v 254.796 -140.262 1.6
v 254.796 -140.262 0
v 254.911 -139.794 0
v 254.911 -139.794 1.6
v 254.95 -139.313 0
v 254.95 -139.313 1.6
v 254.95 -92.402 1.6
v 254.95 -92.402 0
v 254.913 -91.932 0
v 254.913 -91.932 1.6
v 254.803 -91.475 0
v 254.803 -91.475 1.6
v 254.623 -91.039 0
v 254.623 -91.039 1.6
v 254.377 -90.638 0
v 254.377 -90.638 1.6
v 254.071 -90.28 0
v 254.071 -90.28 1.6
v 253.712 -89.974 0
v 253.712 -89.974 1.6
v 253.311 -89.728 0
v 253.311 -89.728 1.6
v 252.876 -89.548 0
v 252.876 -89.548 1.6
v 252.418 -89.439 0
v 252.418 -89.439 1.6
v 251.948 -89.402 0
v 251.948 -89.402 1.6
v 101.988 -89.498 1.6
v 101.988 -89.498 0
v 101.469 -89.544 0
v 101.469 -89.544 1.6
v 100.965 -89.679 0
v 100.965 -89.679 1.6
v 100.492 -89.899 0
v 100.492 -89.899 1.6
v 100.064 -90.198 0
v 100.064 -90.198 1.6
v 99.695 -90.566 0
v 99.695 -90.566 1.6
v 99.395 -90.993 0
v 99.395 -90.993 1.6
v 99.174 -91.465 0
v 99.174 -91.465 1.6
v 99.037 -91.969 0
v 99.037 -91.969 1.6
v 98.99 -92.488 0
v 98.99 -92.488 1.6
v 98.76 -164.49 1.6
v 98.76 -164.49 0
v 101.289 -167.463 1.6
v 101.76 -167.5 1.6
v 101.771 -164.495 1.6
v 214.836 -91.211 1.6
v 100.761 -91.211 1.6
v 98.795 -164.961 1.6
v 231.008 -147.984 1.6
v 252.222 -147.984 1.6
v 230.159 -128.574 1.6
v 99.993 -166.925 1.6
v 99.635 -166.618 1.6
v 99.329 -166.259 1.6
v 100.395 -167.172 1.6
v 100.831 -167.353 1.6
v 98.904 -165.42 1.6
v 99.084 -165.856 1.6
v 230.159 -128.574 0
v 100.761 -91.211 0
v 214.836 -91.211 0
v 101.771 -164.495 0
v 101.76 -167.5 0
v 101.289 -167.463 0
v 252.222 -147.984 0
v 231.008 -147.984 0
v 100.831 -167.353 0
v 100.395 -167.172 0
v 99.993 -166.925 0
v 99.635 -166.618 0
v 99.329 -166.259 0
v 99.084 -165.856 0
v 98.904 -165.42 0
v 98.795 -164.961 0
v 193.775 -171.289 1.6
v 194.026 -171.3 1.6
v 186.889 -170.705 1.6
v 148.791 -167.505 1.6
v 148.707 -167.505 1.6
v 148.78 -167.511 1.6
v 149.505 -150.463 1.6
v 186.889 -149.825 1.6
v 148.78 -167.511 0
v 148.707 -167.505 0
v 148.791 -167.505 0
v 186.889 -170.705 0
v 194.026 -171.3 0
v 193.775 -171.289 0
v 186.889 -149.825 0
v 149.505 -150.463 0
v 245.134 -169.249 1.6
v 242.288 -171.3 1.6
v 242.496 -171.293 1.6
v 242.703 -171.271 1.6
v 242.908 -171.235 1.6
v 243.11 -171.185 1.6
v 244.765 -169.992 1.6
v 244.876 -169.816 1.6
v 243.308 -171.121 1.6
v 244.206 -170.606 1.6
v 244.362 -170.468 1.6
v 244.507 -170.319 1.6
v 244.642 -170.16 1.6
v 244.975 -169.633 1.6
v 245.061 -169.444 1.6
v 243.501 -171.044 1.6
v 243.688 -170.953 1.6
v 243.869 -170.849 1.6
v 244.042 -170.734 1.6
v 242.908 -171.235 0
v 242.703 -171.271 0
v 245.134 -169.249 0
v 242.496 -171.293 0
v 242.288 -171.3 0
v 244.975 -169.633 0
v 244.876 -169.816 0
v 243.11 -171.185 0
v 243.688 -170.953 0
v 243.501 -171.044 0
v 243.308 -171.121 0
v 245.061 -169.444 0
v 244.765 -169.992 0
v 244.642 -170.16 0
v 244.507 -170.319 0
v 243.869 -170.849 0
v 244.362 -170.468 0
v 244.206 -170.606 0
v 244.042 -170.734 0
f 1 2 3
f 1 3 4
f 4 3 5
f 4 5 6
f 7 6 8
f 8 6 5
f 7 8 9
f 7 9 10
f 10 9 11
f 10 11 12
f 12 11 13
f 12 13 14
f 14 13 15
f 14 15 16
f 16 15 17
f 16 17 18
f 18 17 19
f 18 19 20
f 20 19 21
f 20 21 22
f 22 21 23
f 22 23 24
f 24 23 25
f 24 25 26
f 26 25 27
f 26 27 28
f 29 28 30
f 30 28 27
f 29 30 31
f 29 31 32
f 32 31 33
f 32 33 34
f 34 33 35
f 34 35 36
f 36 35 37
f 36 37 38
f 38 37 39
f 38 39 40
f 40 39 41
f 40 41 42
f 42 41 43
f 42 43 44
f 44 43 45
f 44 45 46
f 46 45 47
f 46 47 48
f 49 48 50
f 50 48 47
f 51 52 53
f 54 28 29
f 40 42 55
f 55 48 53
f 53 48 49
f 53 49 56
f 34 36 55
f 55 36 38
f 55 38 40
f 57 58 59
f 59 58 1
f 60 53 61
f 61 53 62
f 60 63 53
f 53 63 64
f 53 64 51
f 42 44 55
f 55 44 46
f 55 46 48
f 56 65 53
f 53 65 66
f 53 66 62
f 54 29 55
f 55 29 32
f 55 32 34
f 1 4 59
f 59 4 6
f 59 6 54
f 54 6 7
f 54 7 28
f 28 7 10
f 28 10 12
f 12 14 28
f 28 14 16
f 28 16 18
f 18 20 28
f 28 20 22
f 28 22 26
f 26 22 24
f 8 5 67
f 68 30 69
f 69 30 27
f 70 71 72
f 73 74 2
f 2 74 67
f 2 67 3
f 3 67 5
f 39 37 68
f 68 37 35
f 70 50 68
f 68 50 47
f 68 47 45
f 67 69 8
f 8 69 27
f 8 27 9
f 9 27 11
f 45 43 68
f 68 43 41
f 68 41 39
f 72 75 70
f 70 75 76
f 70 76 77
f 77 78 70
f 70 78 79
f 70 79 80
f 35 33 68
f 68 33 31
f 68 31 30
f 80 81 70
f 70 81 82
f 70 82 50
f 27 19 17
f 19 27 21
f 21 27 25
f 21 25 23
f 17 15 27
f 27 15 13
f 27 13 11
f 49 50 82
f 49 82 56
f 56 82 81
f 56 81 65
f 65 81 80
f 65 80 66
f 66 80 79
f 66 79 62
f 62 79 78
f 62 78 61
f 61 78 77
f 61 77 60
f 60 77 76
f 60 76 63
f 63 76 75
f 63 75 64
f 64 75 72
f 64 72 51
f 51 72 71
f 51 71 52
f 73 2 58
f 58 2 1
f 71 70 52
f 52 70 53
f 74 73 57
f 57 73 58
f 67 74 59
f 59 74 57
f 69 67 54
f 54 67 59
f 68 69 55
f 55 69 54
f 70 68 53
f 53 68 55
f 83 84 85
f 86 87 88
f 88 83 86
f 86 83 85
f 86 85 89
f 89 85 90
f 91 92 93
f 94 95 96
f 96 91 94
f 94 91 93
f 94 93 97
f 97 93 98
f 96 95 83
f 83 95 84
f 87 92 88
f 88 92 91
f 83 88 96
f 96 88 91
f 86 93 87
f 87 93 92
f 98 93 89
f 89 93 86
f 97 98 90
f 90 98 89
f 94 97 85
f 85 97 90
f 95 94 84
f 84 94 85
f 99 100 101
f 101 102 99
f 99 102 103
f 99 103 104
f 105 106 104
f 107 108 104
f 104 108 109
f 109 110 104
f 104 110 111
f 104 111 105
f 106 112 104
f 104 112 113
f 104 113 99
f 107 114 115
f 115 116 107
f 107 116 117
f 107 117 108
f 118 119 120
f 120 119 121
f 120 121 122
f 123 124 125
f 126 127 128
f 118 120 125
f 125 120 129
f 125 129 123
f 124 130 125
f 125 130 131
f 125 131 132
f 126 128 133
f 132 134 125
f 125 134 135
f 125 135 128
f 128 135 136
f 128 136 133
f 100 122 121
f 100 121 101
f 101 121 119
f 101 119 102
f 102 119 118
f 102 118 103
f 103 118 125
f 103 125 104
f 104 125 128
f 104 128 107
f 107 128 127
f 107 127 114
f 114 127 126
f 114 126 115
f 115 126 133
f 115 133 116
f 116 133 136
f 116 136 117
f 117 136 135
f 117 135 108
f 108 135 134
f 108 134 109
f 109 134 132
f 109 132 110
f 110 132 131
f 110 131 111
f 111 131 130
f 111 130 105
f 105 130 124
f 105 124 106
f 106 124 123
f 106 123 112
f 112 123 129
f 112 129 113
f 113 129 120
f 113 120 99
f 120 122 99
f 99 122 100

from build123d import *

# Parameters (mm, degrees)
BOSS_EXTRUDE1_DEPTH = 1.6
CUT_EXTRUDE1_DEPTH  = 308.157536942


with BuildPart() as part:
    # Model → Boss-Extrude1 (new body)
    with BuildSketch(Plane.XY):
        with BuildLine():
            Line((251.9480764, -89.4019249), (101.9884826, -89.4980837))
            ThreePointArc((101.9884826, -89.4980837), (99.871807019, -90.374045054), (98.9904216, -92.4884678))
            Line((98.9904216, -92.4884678), (98.7596462, -164.4903847))
            ThreePointArc((98.7596462, -164.4903847), (99.634913648, -166.617918097), (101.7596308, -167.5))
            Line((101.7596308, -167.5), (148.5292403, -167.5))
            ThreePointArc((148.5292403, -167.5), (148.654889304, -167.502632426), (148.7803178, -167.5105251))
            Line((148.7803178, -167.5105251), (193.7746822, -171.2894749))
            ThreePointArc((193.7746822, -171.2894749), (193.900110696, -171.297367574), (194.0257597, -171.3))
            Line((194.0257597, -171.3), (242.2877223, -171.3))
            ThreePointArc((242.2877223, -171.3), (244.041853134, -170.733726599), (245.1337722, -169.2486834))
            Line((245.1337722, -169.2486834), (254.7960499, -140.2618504))
            ThreePointArc((254.7960499, -140.2618504), (254.911262384, -139.79371378), (254.95, -139.313167))
            Line((254.95, -139.313167), (254.95, -92.4019243))
            ThreePointArc((254.95, -92.4019243), (254.070640145, -90.279923959), (251.9480764, -89.4019249))
        make_face()
    extrude(amount=BOSS_EXTRUDE1_DEPTH)

    # Sketch3 → Cut-Extrude1 (cut, through all)
    with BuildSketch(Plane.XY.offset(1.6)):
        Polygon((100.760916, -91.211362), (214.836347171, -91.211362), (230.158545553, -128.574226947), (231.007722728, -147.98399094), (252.231178861, -147.98399094), (245.1337722, -169.2486834), (242.2877223, -171.3), (194.0257597, -171.3), (186.88878022, -170.705009504), (186.88878022, -149.824825818), (149.504627314, -150.462797195), (148.791233999, -167.505304017), (101.7596308, -167.5), (101.770547, -164.494778897), align=None)
    extrude(amount=-CUT_EXTRUDE1_DEPTH, mode=Mode.SUBTRACT)


with BuildPart() as cut_extrude1_piece_1:
    # of the separate pieces the step leaves, piece 1, a body of its own (cut_extrude1_pieces)
    add(part.part.solids().sort_by_distance((251.9480764, -89.4019249, 0))[0])


with BuildPart() as cut_extrude1_piece_2:
    # of the separate pieces the step leaves, piece 2, a body of its own (cut_extrude1_pieces)
    add(part.part.solids().sort_by_distance((148.791233999, -167.505304017, 0))[0])


with BuildPart() as cut_extrude1_piece_3:
    # of the separate pieces the step leaves, piece 3, a body of its own (cut_extrude1_pieces)
    add(part.part.solids().sort_by_distance((242.2877223, -171.3, 0))[0])


solid = Compound([cut_extrude1_piece_1.part, cut_extrude1_piece_2.part, cut_extrude1_piece_3.part])
